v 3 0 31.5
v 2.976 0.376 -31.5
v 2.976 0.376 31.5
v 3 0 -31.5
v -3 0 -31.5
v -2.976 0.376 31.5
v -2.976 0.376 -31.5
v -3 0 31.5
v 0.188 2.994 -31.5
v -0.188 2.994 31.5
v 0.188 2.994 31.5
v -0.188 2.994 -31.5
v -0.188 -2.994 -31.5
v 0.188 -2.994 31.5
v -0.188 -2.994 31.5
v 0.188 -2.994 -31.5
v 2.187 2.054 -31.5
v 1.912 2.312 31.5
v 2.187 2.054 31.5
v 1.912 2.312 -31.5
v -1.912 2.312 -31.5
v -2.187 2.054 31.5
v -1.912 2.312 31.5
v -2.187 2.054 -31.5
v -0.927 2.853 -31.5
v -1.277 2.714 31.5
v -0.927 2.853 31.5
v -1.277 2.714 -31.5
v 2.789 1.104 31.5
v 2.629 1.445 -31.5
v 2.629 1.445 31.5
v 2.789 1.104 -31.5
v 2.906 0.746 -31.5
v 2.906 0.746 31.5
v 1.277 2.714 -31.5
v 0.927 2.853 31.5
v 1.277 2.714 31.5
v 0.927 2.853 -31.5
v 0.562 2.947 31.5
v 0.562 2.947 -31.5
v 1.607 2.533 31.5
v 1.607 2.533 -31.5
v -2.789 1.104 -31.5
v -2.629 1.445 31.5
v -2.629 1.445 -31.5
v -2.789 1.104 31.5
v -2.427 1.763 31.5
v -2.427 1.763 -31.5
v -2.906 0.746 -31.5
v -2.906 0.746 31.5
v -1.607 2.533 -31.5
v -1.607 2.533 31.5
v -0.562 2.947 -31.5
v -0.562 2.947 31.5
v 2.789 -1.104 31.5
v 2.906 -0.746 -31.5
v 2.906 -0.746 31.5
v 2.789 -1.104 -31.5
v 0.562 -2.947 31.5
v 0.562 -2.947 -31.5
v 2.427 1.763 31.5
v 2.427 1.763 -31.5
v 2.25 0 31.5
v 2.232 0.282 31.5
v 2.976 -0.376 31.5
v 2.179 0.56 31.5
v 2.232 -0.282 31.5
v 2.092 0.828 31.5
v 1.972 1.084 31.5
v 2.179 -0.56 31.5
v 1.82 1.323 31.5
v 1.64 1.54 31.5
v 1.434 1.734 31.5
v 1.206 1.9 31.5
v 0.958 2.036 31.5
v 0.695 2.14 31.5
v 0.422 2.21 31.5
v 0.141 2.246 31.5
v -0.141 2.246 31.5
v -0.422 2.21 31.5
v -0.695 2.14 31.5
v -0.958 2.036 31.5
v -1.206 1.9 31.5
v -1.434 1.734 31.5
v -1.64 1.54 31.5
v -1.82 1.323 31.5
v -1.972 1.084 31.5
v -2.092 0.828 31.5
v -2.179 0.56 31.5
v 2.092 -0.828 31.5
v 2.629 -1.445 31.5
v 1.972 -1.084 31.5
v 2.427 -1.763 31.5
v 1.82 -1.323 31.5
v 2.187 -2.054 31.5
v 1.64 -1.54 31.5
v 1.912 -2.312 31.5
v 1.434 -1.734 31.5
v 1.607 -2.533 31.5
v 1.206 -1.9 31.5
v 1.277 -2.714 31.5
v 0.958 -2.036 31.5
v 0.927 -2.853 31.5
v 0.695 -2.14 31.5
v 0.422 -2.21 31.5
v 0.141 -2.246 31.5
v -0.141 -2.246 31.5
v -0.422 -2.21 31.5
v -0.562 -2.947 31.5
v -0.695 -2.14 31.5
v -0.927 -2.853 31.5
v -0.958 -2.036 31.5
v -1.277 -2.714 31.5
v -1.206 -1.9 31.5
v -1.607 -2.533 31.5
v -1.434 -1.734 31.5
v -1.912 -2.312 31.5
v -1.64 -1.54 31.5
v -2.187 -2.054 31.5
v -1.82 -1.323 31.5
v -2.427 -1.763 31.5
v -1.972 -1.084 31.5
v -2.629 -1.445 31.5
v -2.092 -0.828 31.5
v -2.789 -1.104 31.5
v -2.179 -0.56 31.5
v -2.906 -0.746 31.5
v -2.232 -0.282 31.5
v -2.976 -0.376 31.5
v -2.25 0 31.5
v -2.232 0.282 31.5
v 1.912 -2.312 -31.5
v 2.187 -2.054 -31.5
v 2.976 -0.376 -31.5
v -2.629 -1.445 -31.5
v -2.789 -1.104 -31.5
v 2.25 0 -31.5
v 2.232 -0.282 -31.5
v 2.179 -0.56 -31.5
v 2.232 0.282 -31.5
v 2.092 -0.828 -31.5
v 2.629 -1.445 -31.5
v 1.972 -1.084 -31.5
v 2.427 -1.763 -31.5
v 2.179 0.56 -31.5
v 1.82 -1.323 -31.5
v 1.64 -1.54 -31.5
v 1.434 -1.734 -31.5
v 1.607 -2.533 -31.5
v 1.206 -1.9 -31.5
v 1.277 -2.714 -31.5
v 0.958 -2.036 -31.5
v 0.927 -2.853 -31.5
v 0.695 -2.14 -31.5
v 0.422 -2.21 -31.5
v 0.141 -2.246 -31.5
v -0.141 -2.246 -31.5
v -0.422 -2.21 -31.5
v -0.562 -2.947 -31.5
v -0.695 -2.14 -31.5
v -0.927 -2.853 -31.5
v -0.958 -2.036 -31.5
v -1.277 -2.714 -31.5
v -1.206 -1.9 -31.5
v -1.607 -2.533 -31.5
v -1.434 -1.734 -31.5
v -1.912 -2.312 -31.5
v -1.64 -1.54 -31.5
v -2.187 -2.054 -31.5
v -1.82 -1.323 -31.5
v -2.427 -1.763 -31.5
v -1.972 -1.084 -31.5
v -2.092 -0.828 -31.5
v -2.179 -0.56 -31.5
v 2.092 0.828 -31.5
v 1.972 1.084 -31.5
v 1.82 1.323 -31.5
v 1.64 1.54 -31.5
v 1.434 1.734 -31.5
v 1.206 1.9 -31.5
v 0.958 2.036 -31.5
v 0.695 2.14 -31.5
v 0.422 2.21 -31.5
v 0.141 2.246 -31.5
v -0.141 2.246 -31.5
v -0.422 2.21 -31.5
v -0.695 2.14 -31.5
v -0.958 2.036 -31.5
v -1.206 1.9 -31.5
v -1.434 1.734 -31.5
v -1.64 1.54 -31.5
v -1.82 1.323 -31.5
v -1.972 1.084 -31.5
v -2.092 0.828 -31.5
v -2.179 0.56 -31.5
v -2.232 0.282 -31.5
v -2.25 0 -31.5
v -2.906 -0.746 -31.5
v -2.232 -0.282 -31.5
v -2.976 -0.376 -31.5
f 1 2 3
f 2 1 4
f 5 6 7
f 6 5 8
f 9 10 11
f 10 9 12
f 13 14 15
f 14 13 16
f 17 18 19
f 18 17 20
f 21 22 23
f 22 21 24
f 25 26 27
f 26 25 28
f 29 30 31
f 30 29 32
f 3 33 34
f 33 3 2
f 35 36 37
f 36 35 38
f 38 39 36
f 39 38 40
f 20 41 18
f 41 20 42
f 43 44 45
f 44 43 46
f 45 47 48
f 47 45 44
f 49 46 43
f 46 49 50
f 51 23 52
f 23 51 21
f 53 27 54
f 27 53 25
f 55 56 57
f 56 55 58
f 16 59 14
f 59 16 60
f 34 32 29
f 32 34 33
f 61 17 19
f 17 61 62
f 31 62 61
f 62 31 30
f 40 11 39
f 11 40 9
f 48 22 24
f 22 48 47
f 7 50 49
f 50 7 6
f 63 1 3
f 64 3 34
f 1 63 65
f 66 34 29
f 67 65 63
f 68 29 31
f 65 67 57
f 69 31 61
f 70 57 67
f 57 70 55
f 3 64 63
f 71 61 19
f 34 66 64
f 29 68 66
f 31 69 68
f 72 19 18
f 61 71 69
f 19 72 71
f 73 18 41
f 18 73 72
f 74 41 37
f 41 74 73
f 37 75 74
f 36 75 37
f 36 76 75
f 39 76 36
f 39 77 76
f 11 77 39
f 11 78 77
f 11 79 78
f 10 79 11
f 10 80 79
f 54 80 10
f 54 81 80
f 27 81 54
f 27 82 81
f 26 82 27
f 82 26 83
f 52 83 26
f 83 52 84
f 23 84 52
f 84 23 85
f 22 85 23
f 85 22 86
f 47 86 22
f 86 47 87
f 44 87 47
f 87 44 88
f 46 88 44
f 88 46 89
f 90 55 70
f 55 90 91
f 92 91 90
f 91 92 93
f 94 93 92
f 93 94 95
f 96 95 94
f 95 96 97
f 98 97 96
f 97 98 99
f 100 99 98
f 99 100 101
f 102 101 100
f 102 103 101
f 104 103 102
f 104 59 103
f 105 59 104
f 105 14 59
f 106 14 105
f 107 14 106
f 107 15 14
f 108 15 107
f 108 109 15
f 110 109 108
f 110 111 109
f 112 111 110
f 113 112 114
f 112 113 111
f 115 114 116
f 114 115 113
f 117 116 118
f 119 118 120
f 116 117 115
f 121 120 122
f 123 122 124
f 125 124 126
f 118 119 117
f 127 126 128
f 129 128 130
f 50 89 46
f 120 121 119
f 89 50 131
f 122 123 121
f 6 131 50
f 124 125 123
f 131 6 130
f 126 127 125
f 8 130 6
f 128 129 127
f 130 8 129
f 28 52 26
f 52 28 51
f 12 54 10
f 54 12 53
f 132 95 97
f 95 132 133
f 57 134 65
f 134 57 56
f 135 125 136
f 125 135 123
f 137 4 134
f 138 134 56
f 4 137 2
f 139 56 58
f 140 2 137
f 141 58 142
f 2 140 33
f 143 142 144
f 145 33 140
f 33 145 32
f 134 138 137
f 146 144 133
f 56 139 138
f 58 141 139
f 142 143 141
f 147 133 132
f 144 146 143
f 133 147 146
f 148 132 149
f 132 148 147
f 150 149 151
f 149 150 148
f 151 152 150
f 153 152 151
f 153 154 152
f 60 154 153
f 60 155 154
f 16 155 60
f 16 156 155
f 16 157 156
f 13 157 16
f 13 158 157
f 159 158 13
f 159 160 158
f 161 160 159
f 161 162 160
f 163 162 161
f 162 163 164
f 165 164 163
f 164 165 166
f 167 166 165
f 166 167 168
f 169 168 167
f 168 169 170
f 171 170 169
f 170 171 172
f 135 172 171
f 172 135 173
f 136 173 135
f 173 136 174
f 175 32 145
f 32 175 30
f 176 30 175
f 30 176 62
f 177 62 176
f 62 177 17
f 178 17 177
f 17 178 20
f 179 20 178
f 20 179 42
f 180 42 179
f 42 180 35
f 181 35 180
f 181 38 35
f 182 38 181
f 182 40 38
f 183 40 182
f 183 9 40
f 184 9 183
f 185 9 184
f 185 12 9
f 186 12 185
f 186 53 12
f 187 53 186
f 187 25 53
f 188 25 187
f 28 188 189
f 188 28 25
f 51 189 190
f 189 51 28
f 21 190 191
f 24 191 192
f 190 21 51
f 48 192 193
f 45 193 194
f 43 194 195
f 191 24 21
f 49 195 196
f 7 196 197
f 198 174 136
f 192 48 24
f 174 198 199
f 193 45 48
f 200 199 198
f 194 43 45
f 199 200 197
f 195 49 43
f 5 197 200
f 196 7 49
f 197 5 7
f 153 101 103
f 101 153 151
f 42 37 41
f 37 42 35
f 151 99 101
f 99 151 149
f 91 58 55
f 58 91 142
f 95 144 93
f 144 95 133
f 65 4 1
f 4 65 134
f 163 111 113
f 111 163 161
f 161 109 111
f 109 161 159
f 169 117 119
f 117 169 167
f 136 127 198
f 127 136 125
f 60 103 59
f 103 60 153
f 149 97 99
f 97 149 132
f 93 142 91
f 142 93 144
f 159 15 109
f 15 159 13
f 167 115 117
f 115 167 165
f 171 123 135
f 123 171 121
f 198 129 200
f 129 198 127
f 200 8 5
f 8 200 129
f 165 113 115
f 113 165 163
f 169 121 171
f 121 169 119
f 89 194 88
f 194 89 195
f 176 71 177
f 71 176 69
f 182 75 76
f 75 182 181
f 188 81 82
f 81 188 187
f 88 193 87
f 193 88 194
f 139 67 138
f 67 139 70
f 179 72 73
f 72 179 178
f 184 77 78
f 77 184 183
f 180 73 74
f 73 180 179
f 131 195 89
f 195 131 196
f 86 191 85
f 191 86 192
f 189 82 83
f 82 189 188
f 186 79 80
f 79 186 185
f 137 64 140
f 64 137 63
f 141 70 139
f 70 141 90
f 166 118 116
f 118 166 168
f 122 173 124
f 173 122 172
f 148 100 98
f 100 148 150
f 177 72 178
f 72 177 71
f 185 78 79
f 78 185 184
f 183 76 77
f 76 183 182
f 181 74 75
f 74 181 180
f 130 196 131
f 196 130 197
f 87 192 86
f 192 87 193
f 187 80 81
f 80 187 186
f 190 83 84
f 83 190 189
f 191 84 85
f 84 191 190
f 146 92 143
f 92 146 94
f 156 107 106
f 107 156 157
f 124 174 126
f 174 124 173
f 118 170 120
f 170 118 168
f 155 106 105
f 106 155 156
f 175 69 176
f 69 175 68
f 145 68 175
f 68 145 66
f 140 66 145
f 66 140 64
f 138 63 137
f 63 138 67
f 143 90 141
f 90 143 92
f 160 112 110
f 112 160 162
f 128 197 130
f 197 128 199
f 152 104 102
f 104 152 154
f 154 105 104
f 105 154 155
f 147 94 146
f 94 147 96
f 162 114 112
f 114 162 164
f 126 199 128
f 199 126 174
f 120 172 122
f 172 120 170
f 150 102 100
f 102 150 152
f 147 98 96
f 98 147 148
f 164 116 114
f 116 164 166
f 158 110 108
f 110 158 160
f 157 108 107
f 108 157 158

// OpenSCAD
$fn = 50;


difference() {
	union() {
		translate(v = [0, 0, -31.5000000000]) {
			cylinder(h = 63, r = 3.0000000000);
		}
	}
	union() {
		translate(v = [0, 0, -100.0000000000]) {
			cylinder(h = 200, r = 2.2500000000);
		}
	}
}
